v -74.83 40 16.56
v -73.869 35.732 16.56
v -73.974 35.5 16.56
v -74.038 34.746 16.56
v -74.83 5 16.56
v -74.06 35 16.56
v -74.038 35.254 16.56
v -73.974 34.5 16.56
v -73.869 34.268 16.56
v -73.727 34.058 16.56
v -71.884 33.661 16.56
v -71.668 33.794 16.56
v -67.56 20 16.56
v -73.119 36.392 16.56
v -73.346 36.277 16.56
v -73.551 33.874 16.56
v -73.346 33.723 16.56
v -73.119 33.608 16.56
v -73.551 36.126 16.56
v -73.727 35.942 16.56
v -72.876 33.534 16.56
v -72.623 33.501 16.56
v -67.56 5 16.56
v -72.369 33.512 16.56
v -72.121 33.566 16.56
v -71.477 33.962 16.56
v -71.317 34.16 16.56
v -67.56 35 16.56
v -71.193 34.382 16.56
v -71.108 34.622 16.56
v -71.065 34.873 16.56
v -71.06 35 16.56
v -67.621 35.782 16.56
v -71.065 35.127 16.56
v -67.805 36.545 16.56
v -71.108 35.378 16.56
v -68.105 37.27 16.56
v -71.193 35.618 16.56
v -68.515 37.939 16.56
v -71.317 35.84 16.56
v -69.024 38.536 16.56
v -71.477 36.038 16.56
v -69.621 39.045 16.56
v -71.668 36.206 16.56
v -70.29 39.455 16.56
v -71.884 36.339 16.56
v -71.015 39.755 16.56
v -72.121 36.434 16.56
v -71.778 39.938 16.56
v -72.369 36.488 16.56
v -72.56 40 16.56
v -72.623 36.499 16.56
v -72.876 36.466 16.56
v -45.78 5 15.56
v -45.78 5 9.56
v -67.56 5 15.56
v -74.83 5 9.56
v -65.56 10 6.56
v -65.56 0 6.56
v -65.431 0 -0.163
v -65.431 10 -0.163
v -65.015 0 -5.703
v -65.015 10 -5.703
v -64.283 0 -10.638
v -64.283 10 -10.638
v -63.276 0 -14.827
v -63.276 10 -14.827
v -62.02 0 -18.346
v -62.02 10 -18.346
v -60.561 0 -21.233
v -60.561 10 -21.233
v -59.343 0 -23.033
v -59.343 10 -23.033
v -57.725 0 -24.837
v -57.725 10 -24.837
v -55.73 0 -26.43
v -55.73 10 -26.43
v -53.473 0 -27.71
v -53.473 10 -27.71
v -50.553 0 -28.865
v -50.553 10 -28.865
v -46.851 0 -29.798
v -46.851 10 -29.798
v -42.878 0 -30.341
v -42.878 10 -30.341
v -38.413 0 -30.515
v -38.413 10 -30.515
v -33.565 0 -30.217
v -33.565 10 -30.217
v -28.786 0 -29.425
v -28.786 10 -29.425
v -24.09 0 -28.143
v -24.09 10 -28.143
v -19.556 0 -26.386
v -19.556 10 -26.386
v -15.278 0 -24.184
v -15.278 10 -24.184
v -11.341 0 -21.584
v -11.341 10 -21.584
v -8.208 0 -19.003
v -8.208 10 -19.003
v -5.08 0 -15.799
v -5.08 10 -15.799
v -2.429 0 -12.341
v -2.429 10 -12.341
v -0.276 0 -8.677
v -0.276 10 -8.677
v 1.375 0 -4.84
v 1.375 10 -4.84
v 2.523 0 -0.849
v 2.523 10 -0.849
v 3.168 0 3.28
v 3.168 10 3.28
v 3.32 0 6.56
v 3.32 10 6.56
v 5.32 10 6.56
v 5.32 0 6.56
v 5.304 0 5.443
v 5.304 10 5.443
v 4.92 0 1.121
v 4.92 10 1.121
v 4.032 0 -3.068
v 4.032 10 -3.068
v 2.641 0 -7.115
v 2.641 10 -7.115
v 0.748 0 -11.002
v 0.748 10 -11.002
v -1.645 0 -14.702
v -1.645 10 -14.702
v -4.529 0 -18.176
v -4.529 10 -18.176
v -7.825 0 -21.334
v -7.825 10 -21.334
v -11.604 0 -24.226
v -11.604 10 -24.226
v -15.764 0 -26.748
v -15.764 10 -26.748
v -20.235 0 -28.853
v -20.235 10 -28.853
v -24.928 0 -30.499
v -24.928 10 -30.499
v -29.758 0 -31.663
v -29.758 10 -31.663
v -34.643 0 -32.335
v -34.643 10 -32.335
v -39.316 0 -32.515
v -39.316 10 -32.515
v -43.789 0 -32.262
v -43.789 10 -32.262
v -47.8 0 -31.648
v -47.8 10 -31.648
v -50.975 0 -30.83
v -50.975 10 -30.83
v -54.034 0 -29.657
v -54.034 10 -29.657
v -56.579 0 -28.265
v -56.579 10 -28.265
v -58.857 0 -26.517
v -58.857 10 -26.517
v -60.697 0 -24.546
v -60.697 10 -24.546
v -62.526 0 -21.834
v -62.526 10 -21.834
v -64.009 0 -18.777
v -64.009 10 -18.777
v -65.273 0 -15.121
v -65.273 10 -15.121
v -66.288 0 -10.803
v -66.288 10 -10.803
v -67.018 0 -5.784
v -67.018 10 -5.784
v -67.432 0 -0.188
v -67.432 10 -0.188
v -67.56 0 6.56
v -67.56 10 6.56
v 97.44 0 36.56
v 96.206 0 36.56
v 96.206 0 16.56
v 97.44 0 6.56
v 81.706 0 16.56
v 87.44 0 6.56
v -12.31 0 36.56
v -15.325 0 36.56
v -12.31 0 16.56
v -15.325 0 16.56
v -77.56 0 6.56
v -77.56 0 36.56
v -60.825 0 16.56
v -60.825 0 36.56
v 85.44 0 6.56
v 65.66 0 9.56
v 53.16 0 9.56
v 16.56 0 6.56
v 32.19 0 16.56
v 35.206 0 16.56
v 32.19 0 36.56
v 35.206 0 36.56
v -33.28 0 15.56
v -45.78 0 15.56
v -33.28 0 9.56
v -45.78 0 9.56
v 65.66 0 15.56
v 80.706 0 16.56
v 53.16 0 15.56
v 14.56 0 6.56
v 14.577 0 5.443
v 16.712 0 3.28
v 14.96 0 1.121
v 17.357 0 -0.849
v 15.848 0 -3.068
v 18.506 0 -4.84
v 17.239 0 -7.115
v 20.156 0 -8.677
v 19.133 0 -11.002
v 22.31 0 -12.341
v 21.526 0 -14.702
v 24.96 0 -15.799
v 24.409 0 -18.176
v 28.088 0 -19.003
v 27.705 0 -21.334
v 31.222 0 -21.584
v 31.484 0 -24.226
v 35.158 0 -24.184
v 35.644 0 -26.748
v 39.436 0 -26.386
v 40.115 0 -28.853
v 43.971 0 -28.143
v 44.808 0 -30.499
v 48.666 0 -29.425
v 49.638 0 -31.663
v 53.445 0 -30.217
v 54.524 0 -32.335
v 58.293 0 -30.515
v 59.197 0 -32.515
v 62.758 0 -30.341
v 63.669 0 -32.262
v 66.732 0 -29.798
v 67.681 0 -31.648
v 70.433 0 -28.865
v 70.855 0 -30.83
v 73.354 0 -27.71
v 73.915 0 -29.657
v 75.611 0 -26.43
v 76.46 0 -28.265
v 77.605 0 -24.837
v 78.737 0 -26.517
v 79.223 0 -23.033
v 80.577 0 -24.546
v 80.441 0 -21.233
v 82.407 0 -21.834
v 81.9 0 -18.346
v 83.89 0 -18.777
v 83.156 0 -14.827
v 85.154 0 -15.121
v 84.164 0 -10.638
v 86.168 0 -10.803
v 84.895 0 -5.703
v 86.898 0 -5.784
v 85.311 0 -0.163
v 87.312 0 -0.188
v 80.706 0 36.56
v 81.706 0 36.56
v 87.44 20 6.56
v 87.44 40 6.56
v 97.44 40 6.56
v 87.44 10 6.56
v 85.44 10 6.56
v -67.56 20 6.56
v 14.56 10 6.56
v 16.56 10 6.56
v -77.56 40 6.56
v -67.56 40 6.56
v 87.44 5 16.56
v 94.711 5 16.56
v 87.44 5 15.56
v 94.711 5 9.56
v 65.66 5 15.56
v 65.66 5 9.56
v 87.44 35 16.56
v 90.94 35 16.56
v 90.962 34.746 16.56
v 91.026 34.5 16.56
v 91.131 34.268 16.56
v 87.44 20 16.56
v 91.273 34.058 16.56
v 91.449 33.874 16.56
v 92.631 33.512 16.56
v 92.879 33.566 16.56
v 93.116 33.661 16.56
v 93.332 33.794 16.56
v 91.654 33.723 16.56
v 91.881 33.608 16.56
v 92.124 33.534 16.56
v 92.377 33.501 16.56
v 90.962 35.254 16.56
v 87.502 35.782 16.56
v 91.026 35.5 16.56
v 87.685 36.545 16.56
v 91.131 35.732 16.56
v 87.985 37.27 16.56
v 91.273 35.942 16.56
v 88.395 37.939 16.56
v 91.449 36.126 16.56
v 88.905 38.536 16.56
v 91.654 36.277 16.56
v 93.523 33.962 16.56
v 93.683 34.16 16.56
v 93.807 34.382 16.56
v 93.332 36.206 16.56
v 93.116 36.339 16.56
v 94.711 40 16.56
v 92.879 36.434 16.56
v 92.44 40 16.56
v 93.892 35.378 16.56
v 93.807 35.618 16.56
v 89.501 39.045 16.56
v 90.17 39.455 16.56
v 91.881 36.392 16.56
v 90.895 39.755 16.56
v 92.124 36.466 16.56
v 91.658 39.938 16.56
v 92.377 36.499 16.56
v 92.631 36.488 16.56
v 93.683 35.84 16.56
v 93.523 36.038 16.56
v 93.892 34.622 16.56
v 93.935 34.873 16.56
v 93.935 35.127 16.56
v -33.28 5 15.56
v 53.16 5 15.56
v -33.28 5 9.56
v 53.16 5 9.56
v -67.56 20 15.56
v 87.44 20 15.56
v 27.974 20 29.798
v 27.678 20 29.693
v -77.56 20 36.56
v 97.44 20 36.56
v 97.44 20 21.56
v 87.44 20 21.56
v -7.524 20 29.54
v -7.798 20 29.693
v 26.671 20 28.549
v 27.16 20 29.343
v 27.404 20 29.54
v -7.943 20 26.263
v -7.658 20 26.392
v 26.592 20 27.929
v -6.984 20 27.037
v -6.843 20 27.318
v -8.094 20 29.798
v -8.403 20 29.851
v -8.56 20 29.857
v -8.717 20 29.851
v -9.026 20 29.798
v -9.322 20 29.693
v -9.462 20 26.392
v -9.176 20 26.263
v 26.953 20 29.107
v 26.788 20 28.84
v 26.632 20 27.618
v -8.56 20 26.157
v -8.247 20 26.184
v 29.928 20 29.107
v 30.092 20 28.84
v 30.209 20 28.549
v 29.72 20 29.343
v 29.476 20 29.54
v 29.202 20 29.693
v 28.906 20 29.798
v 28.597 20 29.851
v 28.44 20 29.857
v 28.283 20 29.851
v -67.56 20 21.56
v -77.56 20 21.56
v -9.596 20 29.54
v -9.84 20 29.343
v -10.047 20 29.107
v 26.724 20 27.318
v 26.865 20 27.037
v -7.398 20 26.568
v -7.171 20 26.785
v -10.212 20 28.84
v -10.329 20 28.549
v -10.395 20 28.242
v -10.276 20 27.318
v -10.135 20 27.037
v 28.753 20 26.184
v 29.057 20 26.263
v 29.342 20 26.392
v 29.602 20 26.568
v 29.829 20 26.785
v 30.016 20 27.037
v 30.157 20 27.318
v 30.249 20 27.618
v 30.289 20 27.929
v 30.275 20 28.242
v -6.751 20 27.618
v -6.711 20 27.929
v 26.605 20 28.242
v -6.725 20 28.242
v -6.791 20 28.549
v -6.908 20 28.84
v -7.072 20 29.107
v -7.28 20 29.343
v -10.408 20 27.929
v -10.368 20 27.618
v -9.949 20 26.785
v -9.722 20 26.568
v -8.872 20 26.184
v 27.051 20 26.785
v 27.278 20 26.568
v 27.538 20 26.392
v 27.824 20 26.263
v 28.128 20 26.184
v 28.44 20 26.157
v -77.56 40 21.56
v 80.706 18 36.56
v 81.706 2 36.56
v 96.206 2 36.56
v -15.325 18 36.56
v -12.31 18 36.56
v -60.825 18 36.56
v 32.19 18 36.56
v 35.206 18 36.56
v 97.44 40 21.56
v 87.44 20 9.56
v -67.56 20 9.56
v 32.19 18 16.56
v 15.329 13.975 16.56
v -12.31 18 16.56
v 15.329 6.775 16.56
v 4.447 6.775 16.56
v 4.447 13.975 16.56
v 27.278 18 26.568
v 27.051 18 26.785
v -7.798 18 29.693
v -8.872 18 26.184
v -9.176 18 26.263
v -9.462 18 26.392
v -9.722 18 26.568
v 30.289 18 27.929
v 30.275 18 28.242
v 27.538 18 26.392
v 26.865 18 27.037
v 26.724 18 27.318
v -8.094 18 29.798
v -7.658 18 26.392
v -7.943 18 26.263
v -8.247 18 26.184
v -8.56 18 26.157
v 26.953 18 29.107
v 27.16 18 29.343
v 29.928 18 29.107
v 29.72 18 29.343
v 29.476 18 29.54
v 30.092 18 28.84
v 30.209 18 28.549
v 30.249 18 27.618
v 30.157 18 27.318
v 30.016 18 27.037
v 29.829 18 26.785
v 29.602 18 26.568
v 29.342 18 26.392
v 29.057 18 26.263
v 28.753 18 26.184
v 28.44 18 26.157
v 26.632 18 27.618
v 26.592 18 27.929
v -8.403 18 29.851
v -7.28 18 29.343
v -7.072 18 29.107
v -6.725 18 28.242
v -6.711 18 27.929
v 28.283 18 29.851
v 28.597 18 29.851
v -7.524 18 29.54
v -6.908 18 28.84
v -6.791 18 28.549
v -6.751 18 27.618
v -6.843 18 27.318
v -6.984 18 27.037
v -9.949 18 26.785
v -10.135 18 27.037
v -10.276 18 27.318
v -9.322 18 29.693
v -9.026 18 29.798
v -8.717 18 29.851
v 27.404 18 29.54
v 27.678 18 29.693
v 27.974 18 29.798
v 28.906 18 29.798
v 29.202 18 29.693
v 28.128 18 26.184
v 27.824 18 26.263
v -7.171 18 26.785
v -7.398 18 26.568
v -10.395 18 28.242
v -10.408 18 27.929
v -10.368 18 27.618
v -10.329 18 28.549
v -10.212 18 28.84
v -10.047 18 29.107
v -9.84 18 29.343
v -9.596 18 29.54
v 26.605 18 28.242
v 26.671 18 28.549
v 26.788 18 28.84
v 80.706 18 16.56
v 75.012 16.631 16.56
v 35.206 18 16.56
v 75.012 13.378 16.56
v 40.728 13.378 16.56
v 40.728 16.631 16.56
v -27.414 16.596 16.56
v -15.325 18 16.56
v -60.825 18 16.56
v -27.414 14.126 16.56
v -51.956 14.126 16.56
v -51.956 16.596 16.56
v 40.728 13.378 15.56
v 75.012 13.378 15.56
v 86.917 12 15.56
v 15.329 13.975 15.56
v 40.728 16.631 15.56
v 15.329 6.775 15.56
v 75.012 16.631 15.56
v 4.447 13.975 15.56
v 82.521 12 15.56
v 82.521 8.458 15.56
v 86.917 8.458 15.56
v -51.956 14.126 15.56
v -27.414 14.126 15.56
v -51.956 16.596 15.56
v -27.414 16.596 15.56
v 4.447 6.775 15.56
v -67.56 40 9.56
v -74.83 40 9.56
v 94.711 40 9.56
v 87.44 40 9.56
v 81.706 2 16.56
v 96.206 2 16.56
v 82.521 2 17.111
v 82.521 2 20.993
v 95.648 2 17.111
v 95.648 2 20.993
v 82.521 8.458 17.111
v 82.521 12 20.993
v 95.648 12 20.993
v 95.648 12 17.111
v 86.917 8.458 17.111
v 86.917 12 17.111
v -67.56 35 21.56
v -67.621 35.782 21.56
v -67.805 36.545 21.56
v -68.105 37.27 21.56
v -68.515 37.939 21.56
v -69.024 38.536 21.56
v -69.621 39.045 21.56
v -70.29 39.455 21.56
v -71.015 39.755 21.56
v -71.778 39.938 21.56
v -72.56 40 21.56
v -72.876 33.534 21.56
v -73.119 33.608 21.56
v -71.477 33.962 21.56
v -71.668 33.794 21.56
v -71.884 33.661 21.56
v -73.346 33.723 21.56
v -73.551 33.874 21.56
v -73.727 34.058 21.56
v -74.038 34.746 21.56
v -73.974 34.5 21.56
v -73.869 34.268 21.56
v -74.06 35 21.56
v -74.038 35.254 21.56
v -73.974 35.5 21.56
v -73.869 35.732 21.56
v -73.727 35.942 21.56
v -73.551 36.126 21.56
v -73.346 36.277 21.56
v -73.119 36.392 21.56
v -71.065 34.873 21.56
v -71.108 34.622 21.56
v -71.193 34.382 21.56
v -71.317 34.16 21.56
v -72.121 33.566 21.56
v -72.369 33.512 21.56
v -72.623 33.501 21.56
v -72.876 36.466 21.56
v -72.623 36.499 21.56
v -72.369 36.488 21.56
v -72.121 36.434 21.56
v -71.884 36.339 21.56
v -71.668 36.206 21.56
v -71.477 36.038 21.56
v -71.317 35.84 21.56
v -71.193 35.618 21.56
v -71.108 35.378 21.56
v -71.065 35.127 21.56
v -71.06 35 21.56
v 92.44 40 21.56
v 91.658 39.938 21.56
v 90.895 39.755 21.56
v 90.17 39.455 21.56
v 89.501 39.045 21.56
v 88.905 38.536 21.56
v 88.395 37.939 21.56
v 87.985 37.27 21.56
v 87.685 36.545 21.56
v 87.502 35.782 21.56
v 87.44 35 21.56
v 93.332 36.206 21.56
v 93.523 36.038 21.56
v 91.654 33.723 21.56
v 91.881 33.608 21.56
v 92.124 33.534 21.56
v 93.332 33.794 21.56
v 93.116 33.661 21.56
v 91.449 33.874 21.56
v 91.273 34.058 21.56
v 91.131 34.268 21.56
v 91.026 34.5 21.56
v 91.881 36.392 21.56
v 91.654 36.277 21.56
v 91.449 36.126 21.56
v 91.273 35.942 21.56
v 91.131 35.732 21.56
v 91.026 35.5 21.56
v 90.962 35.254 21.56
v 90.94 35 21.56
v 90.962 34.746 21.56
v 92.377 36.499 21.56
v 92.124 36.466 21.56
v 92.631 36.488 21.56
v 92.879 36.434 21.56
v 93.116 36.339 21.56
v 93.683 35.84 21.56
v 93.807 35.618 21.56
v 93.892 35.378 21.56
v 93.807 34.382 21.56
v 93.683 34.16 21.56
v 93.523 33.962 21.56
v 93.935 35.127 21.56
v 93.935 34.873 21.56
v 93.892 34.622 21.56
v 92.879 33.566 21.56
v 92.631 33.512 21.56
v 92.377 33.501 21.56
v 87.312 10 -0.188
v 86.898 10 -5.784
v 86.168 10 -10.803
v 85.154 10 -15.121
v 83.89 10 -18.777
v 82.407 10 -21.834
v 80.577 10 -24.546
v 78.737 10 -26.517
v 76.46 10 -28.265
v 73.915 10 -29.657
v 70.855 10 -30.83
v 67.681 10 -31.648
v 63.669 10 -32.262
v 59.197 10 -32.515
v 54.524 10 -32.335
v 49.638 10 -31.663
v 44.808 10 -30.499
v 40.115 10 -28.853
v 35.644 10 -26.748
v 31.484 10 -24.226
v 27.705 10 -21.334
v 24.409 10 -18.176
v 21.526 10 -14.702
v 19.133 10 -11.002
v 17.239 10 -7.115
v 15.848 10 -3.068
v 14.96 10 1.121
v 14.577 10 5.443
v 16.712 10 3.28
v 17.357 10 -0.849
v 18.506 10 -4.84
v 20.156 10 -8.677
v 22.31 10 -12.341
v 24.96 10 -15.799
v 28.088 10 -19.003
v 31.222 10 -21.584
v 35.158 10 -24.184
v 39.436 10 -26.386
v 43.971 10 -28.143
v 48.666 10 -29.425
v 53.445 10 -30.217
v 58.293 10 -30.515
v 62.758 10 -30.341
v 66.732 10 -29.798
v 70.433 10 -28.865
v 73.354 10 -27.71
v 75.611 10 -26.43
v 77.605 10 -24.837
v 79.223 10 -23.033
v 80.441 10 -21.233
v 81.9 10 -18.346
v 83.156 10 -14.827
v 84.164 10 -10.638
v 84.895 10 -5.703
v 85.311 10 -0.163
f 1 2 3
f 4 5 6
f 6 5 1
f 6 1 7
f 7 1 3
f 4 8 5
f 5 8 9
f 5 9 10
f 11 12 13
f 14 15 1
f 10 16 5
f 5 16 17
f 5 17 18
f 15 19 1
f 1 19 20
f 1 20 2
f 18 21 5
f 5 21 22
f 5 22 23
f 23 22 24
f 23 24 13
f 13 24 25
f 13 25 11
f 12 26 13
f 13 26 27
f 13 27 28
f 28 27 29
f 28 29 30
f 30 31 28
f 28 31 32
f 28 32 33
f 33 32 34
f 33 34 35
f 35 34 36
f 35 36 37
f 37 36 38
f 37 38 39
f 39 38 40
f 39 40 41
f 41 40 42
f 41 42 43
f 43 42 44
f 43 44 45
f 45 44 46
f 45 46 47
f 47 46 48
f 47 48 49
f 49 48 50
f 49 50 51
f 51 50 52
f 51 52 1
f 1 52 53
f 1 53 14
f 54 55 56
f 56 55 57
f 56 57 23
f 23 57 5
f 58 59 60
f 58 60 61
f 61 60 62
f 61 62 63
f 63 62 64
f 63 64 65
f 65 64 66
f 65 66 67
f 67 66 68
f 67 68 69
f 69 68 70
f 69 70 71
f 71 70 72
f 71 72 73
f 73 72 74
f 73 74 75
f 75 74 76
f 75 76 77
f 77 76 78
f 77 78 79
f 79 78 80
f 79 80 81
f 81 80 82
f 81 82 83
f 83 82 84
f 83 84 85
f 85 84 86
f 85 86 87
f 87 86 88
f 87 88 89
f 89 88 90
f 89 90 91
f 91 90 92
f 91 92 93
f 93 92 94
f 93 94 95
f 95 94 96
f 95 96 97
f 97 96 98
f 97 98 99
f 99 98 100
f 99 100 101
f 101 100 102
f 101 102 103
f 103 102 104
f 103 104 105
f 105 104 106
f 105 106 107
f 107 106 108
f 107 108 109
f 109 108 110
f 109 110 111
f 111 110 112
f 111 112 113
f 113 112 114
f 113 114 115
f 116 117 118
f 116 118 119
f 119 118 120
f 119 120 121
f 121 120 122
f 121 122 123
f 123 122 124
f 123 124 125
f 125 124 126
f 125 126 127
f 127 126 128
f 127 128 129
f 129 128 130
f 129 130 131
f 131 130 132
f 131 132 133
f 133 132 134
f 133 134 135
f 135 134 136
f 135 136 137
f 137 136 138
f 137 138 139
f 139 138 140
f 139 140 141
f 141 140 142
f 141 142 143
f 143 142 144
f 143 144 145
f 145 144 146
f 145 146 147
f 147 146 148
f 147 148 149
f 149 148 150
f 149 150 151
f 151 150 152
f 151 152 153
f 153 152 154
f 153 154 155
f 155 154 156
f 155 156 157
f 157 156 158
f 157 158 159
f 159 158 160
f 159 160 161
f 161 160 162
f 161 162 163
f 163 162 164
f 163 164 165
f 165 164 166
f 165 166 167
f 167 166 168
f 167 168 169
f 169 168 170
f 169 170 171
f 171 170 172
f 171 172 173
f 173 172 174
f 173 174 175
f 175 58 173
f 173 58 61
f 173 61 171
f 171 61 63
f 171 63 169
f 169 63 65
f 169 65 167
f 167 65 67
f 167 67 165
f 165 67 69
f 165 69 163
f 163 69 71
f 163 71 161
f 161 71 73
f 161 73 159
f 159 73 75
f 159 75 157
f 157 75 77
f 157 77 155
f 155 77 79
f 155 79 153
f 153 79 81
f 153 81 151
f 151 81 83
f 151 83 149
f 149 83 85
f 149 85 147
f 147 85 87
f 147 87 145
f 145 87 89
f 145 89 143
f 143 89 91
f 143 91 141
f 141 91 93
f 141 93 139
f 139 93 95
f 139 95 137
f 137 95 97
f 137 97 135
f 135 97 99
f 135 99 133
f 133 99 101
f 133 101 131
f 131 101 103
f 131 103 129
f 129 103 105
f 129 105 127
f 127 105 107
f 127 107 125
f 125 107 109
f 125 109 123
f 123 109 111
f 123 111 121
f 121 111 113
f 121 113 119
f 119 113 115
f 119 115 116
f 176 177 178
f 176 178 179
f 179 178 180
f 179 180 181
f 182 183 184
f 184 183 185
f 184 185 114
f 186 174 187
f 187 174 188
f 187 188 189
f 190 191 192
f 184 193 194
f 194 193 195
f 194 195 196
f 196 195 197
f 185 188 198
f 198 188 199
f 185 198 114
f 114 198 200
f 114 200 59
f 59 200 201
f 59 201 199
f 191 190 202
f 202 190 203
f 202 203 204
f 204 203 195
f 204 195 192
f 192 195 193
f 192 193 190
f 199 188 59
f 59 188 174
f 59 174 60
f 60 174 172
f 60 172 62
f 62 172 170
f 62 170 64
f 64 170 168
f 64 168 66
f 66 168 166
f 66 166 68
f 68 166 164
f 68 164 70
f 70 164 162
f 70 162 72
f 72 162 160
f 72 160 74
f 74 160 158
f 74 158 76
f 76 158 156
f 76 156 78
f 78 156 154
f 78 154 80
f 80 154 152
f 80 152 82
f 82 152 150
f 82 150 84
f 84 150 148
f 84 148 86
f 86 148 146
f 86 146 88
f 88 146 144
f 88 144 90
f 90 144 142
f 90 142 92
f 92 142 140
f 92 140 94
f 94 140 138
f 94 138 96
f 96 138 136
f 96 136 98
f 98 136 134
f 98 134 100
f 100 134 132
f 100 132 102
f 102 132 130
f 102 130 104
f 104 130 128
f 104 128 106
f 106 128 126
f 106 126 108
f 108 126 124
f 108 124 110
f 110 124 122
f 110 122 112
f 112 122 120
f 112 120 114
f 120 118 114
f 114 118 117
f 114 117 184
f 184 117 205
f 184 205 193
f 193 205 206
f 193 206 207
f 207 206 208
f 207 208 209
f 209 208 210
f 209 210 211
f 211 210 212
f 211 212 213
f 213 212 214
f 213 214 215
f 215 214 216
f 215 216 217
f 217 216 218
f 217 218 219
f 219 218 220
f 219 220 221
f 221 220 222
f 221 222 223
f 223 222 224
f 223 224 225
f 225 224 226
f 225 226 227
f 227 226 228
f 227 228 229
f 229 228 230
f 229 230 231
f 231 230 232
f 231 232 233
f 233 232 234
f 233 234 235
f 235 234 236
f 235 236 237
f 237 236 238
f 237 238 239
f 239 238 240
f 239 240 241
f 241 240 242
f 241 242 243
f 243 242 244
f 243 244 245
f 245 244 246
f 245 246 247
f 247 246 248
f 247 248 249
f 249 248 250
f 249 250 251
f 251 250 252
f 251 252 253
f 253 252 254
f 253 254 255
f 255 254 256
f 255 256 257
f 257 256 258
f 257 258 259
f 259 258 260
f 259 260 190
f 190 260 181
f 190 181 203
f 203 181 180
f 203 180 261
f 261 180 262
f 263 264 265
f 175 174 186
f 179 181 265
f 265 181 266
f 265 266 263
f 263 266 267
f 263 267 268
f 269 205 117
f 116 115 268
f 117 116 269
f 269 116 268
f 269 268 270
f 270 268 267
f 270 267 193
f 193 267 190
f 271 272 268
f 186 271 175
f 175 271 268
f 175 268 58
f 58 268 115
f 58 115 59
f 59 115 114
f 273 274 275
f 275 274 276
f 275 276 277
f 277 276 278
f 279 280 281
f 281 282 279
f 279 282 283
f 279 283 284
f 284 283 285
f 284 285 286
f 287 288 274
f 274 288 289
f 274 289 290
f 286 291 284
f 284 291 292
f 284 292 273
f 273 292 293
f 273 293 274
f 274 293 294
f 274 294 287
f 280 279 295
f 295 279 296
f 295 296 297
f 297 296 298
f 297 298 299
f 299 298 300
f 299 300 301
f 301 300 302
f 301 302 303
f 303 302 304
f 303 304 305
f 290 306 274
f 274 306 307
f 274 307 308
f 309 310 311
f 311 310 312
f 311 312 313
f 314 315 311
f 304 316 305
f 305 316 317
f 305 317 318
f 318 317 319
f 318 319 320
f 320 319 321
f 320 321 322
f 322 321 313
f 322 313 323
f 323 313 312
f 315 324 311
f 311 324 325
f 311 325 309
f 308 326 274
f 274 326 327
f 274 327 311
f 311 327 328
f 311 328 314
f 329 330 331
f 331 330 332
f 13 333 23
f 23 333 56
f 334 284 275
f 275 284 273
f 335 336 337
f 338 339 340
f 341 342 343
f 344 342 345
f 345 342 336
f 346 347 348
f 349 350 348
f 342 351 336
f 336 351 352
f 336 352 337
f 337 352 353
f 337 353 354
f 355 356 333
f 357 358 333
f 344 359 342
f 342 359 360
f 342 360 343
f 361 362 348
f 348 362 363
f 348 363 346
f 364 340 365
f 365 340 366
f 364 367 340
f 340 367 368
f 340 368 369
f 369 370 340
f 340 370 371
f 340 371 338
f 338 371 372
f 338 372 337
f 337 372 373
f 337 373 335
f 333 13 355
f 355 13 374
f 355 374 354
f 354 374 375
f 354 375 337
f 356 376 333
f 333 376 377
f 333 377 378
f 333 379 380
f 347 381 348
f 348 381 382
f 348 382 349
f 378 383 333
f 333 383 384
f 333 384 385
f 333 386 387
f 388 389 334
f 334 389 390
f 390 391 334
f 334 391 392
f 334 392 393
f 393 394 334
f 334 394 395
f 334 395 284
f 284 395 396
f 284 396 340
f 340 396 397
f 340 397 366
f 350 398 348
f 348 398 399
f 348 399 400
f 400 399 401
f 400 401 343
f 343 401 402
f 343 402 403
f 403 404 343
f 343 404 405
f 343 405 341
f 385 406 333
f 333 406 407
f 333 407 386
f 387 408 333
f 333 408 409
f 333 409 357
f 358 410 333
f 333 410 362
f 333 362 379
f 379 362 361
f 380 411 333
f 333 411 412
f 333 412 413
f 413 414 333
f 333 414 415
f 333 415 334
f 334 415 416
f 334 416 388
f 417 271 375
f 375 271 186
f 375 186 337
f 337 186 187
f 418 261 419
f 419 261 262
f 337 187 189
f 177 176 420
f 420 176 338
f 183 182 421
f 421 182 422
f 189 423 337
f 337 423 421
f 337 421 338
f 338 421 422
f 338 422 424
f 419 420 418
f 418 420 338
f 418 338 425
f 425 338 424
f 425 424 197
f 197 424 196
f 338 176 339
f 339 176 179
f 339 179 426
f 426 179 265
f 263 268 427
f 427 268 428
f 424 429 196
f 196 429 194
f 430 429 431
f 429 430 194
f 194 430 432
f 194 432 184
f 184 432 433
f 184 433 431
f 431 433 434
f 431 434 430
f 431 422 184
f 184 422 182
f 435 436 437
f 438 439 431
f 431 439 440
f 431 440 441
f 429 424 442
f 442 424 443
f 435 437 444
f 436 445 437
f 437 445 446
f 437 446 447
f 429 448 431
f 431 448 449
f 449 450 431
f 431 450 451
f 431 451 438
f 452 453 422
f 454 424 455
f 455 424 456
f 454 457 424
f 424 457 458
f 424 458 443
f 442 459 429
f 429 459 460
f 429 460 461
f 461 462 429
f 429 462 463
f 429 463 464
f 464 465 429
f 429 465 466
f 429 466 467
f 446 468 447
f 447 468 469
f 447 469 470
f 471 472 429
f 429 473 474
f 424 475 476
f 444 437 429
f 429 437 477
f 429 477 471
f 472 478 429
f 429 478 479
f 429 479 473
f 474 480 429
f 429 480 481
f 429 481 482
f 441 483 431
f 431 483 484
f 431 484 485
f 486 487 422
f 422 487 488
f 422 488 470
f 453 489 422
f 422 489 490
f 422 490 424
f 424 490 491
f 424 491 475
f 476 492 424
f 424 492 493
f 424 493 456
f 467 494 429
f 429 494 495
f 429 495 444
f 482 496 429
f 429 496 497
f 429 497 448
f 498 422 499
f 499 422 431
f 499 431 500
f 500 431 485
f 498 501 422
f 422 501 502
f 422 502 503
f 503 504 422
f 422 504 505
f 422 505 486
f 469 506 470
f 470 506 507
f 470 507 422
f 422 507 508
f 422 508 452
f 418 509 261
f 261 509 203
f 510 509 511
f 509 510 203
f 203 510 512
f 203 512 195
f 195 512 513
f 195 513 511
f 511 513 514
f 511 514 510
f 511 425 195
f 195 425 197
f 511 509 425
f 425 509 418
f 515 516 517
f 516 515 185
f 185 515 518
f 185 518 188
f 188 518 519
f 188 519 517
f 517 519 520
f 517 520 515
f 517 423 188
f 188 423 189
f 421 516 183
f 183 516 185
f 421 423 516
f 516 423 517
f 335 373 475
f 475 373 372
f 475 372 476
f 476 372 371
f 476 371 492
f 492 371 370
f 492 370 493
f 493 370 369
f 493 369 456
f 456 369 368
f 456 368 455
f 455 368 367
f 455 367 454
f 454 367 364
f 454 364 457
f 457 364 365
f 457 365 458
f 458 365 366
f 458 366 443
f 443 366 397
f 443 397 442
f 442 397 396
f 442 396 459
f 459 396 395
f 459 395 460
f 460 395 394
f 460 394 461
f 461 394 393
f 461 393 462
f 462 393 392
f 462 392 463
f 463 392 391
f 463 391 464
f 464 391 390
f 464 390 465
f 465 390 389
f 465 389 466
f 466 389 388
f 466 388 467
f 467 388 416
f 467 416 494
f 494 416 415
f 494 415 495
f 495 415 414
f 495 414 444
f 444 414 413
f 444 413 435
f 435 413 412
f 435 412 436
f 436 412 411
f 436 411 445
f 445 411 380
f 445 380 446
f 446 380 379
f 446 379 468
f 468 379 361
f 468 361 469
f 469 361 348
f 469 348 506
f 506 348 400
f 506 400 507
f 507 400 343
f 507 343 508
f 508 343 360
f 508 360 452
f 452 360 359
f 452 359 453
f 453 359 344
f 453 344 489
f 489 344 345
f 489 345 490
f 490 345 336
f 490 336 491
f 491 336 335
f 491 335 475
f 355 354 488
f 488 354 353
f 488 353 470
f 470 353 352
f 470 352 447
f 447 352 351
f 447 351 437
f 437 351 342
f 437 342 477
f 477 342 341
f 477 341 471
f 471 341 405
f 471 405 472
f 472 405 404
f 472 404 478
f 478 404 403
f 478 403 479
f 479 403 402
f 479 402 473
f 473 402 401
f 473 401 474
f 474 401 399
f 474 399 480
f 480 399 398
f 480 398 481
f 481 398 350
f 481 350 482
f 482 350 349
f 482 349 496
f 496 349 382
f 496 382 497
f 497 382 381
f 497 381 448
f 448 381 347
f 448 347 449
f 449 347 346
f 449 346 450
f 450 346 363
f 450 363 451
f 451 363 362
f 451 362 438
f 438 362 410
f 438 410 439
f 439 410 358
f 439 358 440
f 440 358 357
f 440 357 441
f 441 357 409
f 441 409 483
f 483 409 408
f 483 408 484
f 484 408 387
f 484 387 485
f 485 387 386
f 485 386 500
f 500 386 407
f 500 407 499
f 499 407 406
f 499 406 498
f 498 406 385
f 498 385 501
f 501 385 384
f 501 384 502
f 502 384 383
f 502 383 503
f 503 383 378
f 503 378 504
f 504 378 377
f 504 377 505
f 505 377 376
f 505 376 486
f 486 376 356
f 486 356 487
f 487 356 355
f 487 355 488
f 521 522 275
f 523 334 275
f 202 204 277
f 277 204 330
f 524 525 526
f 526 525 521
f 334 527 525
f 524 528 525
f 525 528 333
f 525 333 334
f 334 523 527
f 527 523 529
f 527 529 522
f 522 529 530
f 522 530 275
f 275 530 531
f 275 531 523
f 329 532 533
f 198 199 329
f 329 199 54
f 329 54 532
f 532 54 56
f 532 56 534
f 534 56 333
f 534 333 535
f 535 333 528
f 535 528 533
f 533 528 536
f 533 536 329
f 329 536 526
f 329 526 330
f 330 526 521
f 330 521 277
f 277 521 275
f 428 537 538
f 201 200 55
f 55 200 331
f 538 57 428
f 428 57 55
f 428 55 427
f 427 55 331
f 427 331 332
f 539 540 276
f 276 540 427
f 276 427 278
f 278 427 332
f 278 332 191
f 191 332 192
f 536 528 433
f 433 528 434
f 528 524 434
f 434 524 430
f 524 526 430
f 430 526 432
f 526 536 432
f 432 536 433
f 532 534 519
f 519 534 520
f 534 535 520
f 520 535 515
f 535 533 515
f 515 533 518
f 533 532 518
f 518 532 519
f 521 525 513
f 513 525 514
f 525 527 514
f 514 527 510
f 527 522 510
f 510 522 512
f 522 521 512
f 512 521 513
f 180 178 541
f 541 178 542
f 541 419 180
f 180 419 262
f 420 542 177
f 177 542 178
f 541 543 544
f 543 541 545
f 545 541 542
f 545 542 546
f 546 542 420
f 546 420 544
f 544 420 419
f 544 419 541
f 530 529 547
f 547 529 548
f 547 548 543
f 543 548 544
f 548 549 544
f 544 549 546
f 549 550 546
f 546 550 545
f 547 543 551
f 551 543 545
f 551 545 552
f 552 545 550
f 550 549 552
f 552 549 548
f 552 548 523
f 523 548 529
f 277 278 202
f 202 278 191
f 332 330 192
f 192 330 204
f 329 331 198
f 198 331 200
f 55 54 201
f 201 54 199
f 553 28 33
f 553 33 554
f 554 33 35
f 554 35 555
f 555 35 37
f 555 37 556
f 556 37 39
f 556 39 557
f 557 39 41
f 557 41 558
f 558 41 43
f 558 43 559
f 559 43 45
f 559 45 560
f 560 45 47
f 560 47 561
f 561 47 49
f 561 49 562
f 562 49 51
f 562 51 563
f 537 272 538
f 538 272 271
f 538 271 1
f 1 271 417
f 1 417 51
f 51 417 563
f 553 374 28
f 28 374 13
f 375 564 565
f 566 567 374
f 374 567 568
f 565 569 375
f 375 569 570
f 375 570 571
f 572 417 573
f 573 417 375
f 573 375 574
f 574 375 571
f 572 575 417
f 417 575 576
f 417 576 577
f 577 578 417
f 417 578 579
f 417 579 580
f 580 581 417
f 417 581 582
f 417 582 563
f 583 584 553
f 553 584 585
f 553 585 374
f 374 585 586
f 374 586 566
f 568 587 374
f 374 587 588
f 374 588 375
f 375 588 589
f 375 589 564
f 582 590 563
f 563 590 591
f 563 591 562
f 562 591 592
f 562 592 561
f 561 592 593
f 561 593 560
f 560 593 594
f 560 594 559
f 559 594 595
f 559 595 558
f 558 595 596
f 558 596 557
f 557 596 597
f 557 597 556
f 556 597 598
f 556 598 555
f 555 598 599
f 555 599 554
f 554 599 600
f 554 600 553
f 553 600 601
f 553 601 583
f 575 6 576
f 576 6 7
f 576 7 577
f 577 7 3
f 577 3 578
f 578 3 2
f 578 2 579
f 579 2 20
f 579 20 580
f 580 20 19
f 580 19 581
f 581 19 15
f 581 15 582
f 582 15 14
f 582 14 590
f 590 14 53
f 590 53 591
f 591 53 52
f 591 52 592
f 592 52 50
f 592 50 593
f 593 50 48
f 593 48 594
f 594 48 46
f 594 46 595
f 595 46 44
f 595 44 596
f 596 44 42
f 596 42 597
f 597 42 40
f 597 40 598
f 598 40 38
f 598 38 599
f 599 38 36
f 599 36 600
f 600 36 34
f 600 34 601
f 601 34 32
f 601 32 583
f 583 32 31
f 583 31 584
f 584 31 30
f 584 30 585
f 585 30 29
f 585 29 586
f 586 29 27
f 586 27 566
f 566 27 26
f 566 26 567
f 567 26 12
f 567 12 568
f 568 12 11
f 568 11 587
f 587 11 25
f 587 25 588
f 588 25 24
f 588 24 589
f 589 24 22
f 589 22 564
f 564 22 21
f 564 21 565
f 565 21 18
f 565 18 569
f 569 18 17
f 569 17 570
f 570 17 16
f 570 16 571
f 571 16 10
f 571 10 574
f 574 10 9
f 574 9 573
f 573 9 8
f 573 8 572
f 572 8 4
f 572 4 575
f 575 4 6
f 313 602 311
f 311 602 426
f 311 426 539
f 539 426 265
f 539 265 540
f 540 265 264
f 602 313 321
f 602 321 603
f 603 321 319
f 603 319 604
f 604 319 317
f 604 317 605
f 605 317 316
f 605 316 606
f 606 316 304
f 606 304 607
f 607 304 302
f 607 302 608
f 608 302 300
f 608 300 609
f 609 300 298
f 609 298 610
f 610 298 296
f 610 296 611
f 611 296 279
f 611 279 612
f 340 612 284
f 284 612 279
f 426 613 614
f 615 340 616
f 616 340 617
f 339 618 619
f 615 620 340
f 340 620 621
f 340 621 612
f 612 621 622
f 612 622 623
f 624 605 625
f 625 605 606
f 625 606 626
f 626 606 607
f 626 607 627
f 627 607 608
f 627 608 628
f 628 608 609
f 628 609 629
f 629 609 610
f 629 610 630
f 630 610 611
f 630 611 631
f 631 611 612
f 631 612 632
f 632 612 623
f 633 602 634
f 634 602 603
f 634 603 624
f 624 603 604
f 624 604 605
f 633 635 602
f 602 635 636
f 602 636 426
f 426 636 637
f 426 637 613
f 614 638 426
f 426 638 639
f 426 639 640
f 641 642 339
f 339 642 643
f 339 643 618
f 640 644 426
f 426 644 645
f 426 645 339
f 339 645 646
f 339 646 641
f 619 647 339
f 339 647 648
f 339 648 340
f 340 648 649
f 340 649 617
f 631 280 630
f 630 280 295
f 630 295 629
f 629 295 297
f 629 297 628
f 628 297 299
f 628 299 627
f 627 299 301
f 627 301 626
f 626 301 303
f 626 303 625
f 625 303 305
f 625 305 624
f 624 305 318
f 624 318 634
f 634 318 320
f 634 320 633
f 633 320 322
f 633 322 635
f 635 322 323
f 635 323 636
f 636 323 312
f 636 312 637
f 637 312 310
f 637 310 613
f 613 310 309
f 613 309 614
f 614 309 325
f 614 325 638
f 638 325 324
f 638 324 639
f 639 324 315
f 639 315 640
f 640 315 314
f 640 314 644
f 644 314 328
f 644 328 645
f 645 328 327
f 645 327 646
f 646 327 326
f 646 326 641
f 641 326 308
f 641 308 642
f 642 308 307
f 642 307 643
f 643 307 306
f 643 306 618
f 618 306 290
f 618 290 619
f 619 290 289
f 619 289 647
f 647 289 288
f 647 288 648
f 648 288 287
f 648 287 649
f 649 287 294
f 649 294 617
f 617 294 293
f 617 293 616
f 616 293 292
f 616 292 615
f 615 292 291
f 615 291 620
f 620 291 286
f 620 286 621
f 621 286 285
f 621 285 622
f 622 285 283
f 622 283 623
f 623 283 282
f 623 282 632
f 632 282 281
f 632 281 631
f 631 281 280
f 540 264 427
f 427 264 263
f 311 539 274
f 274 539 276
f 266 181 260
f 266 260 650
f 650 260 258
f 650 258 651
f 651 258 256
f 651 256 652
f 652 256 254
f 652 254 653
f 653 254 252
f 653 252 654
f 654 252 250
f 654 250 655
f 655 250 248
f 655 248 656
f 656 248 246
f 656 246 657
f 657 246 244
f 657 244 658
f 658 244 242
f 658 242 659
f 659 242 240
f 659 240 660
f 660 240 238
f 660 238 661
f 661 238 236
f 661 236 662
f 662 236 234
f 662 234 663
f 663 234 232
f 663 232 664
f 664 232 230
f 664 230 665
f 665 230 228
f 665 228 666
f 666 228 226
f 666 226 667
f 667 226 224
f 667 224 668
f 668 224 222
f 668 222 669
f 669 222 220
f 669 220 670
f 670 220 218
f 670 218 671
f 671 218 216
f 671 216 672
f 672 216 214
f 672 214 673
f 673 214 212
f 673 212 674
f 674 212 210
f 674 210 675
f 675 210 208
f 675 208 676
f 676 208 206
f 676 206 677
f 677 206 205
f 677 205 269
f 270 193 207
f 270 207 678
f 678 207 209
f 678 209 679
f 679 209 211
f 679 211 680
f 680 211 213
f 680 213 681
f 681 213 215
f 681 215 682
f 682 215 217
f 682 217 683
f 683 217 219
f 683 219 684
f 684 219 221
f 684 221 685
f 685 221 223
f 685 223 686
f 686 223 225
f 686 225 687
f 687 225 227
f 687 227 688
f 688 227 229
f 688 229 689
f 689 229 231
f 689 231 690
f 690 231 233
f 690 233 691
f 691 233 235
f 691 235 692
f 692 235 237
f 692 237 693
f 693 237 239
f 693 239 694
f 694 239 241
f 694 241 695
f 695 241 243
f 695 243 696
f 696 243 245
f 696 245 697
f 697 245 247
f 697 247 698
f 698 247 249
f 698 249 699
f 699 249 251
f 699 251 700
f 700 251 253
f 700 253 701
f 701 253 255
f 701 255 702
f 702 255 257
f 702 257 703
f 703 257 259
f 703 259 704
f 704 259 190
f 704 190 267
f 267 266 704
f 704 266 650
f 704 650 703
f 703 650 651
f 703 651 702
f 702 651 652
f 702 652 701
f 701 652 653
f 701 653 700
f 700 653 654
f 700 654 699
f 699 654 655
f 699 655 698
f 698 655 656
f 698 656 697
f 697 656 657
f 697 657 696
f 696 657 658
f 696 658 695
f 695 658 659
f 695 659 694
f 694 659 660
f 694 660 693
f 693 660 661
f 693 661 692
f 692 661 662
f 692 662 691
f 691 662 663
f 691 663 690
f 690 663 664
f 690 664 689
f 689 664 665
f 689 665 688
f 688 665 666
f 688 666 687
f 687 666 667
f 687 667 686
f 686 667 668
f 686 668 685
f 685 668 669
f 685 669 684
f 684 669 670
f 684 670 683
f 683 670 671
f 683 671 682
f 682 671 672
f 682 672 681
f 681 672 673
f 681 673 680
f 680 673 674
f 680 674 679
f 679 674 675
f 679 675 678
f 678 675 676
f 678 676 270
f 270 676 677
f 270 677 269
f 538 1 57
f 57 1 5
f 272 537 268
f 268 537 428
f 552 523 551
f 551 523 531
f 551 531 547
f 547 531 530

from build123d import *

# Parameters (mm, degrees)
EXTRUDE_424_DEPTH      = 20
SKETCH_9_W             = 44.5
SKETCH_9_H             = 20
SKETCH_9_W_2           = 45.5
IR_DEPTH               = 18
SKETCH_10_W            = 10
SKETCH_10_H            = 20
EXTRUDE_4_DEPTH        = 10
SKETCH_11_W            = 10
SKETCH_11_H            = 20
EXTRUDE_5_DEPTH        = 10
SKETCH_12_R            = 1.85
IR_2_DEPTH             = 10
SKETCH_15_W            = 6
SKETCH_15_H            = 15
CUT_EXTRUDE_2222_DEPTH = 171.181132046
SKETCH_13_W            = 10.882520515
SKETCH_13_H            = 7.2
IR_3_DEPTH             = 1
SKETCH_16_W            = 24.541962537
SKETCH_16_H            = 2.470190362
CUT_EXTRUDE_1_DEPTH    = 1
SKETCH_17_W            = 34.283405153
SKETCH_17_H            = 3.253435469
CUT_EXTRUDE_2_DEPTH    = 1
SKETCH_18_W            = 14.5
SKETCH_18_H            = 20
BH1750_DEPTH           = 2
SKETCH_19_W            = 13.126104065
SKETCH_19_H            = 3.881549914
BH1759_1_DEPTH         = 10
SKETCH_25_W            = 10
SKETCH_25_H            = 5
EXTRUDE_6_DEPTH        = 10
SKETCH_28_W            = 10
SKETCH_28_H            = 5
EXTRUDE_7_DEPTH        = 10
SKETCH_29_W            = 12.5
SKETCH_29_H            = 6
CUT_EXTRUDE_1_2_DEPTH  = 5
SKETCH_8_R             = 1.5
EXTRUDE_9_DEPTH        = 5
EXTRUDE_10_DEPTH       = 10
EXTRUDE_10_2_DEPTH     = 10
EXTRUDE_11_DEPTH       = 35
EXTRUDE_12_DEPTH       = 35
SKETCH_33_W            = 4.396057752
SKETCH_33_H            = 3.541501354
CUT_EXTRUDE_15_DEPTH   = 4


with BuildPart() as part:
    # 草图6 → Extrude 424 (new body)
    with BuildSketch(Plane(origin=(0, 0, 0), x_dir=(1, 0, 0), z_dir=(0, 1, 0))):
        Polygon((-77.559782609, -16.559782609), (-77.559782609, -26.559782609), (-67.559782609, -26.559782609), (-67.559782609, -36.559782609), (87.440217391, -36.559782609), (87.440217391, -26.559782609), (97.440217391, -26.559782609), (97.440217391, -16.559782609), (87.440217391, -16.559782609), (87.440217391, -6.559782609), (-67.559782609, -6.559782609), (-67.559782609, -16.559782609), align=None)
    extrude(amount=EXTRUDE_424_DEPTH)

    # 草图9 → ir (cut)
    with BuildSketch(Plane.XZ):
        with Locations((9.940217391, 26.559782609)):
            Rectangle(SKETCH_9_W, SKETCH_9_H)
        with Locations((57.955553821, 26.559782609)):
            Rectangle(SKETCH_9_W_2, SKETCH_9_H)
        with Locations((-38.075119038, 26.559782609)):
            Rectangle(SKETCH_9_W_2, SKETCH_9_H)
    extrude(amount=-IR_DEPTH, mode=Mode.SUBTRACT)

    # 草图10 → 凸台-拉伸4 (add)
    with BuildSketch(Plane.XY.offset(26.559782609)):
        with Locations((92.440217391, 10)):
            Rectangle(SKETCH_10_W, SKETCH_10_H)
    extrude(amount=EXTRUDE_4_DEPTH)

    # 草图11 → 凸台-拉伸5 (add)
    with BuildSketch(Plane.XY.offset(26.559782609)):
        with Locations((-72.559782609, 10)):
            Rectangle(SKETCH_11_W, SKETCH_11_H)
    extrude(amount=EXTRUDE_5_DEPTH)

    # 草图12 → IR 2 (cut)
    with BuildSketch(Plane.XZ.offset(-18)):
        with Locations(Location((-8.559782609, 28.007356634, 0), (0, 0, 270))):
            Circle(SKETCH_12_R)
        with Locations(Location((28.440217391, 28.007356634, 0), (0, 0, 270))):
            Circle(SKETCH_12_R)
    extrude(amount=-IR_2_DEPTH, mode=Mode.SUBTRACT)

    # 草图15 → Cut-Extrude 2222 (cut, through all)
    with BuildSketch(Plane(origin=(87.440217391, 0, 0), x_dir=(0, 0, -1), z_dir=(1, 0, 0))):
        with Locations((-12.559782609, 12.5)):
            Rectangle(SKETCH_15_W, SKETCH_15_H)
    extrude(amount=-CUT_EXTRUDE_2222_DEPTH, mode=Mode.SUBTRACT)

    # 草图13 → ir 3 (cut)
    with BuildSketch(Plane.XY.offset(16.559782609)):
        with Locations((9.887839431, 10.374814022)):
            Rectangle(SKETCH_13_W, SKETCH_13_H)
    extrude(amount=-IR_3_DEPTH, mode=Mode.SUBTRACT)

    # 草图16 → Cut-Extrude 1 (cut)
    with BuildSketch(Plane.XY.offset(16.559782609)):
        with Locations((-39.68528849, 15.361228101)):
            Rectangle(SKETCH_16_W, SKETCH_16_H)
    extrude(amount=-CUT_EXTRUDE_1_DEPTH, mode=Mode.SUBTRACT)

    # 草图17 → 超声2接线孔 (cut)
    with BuildSketch(Plane.XY.offset(16.559782609)):
        with Locations((57.869979923, 15.004366633)):
            Rectangle(SKETCH_17_W, SKETCH_17_H)
    extrude(amount=-CUT_EXTRUDE_2_DEPTH, mode=Mode.SUBTRACT)

    # 草图18 → BH1750_前_固定孔 (cut)
    with BuildSketch(Plane.XZ):
        with Locations((88.955553821, 26.559782609)):
            Rectangle(SKETCH_18_W, SKETCH_18_H)
    extrude(amount=-BH1750_DEPTH, mode=Mode.SUBTRACT)

    # 草图19 → BH1759排线槽1 (cut)
    with BuildSketch(Plane.XZ.offset(-2)):
        with Locations((89.084488571, 19.052159055)):
            Rectangle(SKETCH_19_W, SKETCH_19_H)
    extrude(amount=-BH1759_1_DEPTH, mode=Mode.SUBTRACT)

    # 草图25 → 凸台-拉伸6 (add)
    with BuildSketch(Plane(origin=(0, 0, 16.559782609), x_dir=(-1, 0, 0), z_dir=(0, 0, -1))):
        with Locations((-92.440217391, 2.5)):
            Rectangle(SKETCH_25_W, SKETCH_25_H)
    extrude(amount=EXTRUDE_6_DEPTH)

    # 草图28 → 凸台-拉伸7 (add)
    with BuildSketch(Plane(origin=(0, 0, 16.559782609), x_dir=(-1, 0, 0), z_dir=(0, 0, -1))):
        with Locations((72.559782609, 2.5)):
            Rectangle(SKETCH_28_W, SKETCH_28_H)
    extrude(amount=EXTRUDE_7_DEPTH)

    # 草图29 → Cut-Extrude 1 2 (cut)
    with BuildSketch(Plane.XZ):
        with Locations((-39.530153737, 12.559782609)):
            Rectangle(SKETCH_29_W, SKETCH_29_H)
        with Locations((59.410217391, 12.559782609)):
            Rectangle(SKETCH_29_W, SKETCH_29_H)
    extrude(amount=-CUT_EXTRUDE_1_2_DEPTH, mode=Mode.SUBTRACT)

    # 草图8 → 凸台-拉伸9 (add)
    # profile 1 of 2: a face of its own
    with BuildSketch(Plane(origin=(0, 0, 16.559782609), x_dir=(-1, 0, 0), z_dir=(0, 0, -1))):
        with BuildLine():
            Line((-87.440217391, 20), (-97.440217391, 20))
            Line((-97.440217391, 20), (-97.440217391, 40))
            Line((-97.440217391, 40), (-92.440217391, 40))
            ThreePointArc((-92.440217391, 40), (-88.904683485, 38.535533906), (-87.440217391, 35))
            Line((-87.440217391, 35), (-87.440217391, 20))
        make_face()
        with Locations((-92.440217391, 35)):
            Circle(SKETCH_8_R, mode=Mode.SUBTRACT)
    # profile 2 of 2: a face of its own
    with BuildSketch(Plane(origin=(0, 0, 16.559782609), x_dir=(-1, 0, 0), z_dir=(0, 0, -1))):
        with BuildLine():
            Line((67.559782609, 20), (67.559782609, 35))
            ThreePointArc((67.559782609, 35), (69.024248703, 38.535533906), (72.559782609, 40))
            Line((72.559782609, 40), (77.559782609, 40))
            Line((77.559782609, 40), (77.559782609, 20))
            Line((77.559782609, 20), (67.559782609, 20))
        make_face()
        with Locations(Location((72.559782609, 35, 0), (0, 0, 180))):
            Circle(SKETCH_8_R, mode=Mode.SUBTRACT)
    extrude(amount=-EXTRUDE_9_DEPTH)



with BuildPart() as body_2:
    # 草图30 → 凸台-拉伸10 (new body)
    with BuildSketch(Plane.XZ):
        with BuildLine():
            Line((-65.559782609, 6.559782609), (-67.559782609, 6.559782609))
            add(Edge.make_bspline(
                [(-67.559782609, 6.559782609), (-67.559782615, -2.831750368), (-66.951063879, -26.693920993), (-25.547228665, -38.442302875), (5.320217293, -18.58086721), (5.320217391, 6.559782609)],
                knots=[0, 0, 0, 0, 0.293331619, 0.430027762, 1, 1, 1, 1], degree=3))
            Line((5.320217391, 6.559782609), (3.320217391, 6.559782609))
            add(Edge.make_bspline(
                [(-65.559782609, 6.559782607), (-65.559782609, 6.045118096), (-65.557439516, 5.039817519), (-65.534390428, 2.837044533), (-65.454379934, -0.102082601), (-65.223267199, -3.857669351), (-64.665969093, -8.998959682), (-63.375409887, -15.390627267), (-60.997478567, -20.916717154), (-58.343812027, -24.378581092), (-55.136170725, -27.10192273), (-49.835817329, -29.402048854), (-42.346097069, -30.591796275), (-34.792946451, -30.541405828), (-27.378683065, -29.295677263), (-20.312173541, -26.930867488), (-13.800925165, -23.521784965), (-8.048578767, -19.149967972), (-3.250641537, -13.89816626), (-0.201141288, -8.853589574), (1.581132972, -4.447061116), (2.566885134, -0.963022362), (3.076523936, 2.089934189), (3.284766561, 4.611805642), (3.320217389, 5.913625911), (3.320217391, 6.559782617)],
                knots=[0, 0, 0, 0, 0.015625, 0.03125, 0.0625, 0.09375, 0.125, 0.1875, 0.25, 0.28125, 0.3125, 0.375, 0.4375, 0.5, 0.5625, 0.625, 0.6875, 0.75, 0.8125, 0.875, 0.90625, 0.9375, 0.96875, 0.984375, 1, 1, 1, 1], degree=3))
        make_face()
    extrude(amount=-EXTRUDE_10_DEPTH)


with BuildPart() as body_3:
    # 草图30 → Extrude 10 2 (new body)
    with BuildSketch(Plane.XZ):
        with BuildLine():
            Line((16.560217391, 6.559782609), (14.560217391, 6.559782609))
            add(Edge.make_bspline(
                [(87.440217391, 6.559782609), (87.440217398, -2.831750368), (86.831498662, -26.693920993), (45.427663448, -38.442302875), (14.56021749, -18.58086721), (14.560217391, 6.559782609)],
                knots=[0, 0, 0, 0, 0.293331619, 0.430027762, 1, 1, 1, 1], degree=3))
            Line((87.440217391, 6.559782609), (85.440217391, 6.559782609))
            add(Edge.make_bspline(
                [(85.440217391, 6.559782607), (85.440217392, 6.045118096), (85.437874299, 5.039817519), (85.41482521, 2.837044533), (85.334814717, -0.102082601), (85.103701982, -3.857669351), (84.546403875, -8.998959682), (83.25584467, -15.390627267), (80.87791335, -20.916717154), (78.224246809, -24.378581092), (75.016605508, -27.10192273), (69.716252112, -29.402048854), (62.226531852, -30.591796275), (54.673381234, -30.541405828), (47.259117848, -29.295677263), (40.192608324, -26.930867488), (33.681359948, -23.521784965), (27.92901355, -19.149967972), (23.13107632, -13.89816626), (20.08157607, -8.853589574), (18.29930181, -4.447061116), (17.313549649, -0.963022362), (16.803910846, 2.089934189), (16.595668222, 4.611805642), (16.560217394, 5.913625911), (16.560217391, 6.559782617)],
                knots=[0, 0, 0, 0, 0.015625, 0.03125, 0.0625, 0.09375, 0.125, 0.1875, 0.25, 0.28125, 0.3125, 0.375, 0.4375, 0.5, 0.5625, 0.625, 0.6875, 0.75, 0.8125, 0.875, 0.90625, 0.9375, 0.96875, 0.984375, 1, 1, 1, 1], degree=3))
        make_face()
    extrude(amount=-EXTRUDE_10_2_DEPTH)


with BuildPart() as part_1:
    add(part.part)

    add(body_3.part)  # 凸台-拉伸11 merges body 3
    # 草图31 → 凸台-拉伸11 (add)
    with BuildSketch(Plane(origin=(0, 5, 0), x_dir=(1, 0, 0), z_dir=(0, 1, 0))):
        Polygon((87.440217391, -6.559782609), (87.440217391, -9.559782609), (94.710697122, -9.559782609), (94.710697122, -16.559782609), (97.440217391, -16.559782609), (97.440217391, -6.559782609), align=None)
    extrude(amount=EXTRUDE_11_DEPTH)


    add(body_2.part)  # 凸台-拉伸12 merges body 2
    # 草图32 → 凸台-拉伸12 (add)
    with BuildSketch(Plane(origin=(0, 5, 0), x_dir=(1, 0, 0), z_dir=(0, 1, 0))):
        Polygon((-67.559782609, -6.559782609), (-67.559782609, -9.559782609), (-74.829782609, -9.559782609), (-74.829782609, -16.559782609), (-77.559782609, -16.559782609), (-77.559782609, -6.559782609), align=None)
    extrude(amount=EXTRUDE_12_DEPTH)

    # 草图33 → 切除-拉伸15 (cut)
    with BuildSketch(Plane.XY.offset(17.111384098)):
        with Locations((84.719465414, 10.229249323)):
            Rectangle(SKETCH_33_W, SKETCH_33_H)
    extrude(amount=-CUT_EXTRUDE_15_DEPTH, mode=Mode.SUBTRACT)


solid = part_1.part
